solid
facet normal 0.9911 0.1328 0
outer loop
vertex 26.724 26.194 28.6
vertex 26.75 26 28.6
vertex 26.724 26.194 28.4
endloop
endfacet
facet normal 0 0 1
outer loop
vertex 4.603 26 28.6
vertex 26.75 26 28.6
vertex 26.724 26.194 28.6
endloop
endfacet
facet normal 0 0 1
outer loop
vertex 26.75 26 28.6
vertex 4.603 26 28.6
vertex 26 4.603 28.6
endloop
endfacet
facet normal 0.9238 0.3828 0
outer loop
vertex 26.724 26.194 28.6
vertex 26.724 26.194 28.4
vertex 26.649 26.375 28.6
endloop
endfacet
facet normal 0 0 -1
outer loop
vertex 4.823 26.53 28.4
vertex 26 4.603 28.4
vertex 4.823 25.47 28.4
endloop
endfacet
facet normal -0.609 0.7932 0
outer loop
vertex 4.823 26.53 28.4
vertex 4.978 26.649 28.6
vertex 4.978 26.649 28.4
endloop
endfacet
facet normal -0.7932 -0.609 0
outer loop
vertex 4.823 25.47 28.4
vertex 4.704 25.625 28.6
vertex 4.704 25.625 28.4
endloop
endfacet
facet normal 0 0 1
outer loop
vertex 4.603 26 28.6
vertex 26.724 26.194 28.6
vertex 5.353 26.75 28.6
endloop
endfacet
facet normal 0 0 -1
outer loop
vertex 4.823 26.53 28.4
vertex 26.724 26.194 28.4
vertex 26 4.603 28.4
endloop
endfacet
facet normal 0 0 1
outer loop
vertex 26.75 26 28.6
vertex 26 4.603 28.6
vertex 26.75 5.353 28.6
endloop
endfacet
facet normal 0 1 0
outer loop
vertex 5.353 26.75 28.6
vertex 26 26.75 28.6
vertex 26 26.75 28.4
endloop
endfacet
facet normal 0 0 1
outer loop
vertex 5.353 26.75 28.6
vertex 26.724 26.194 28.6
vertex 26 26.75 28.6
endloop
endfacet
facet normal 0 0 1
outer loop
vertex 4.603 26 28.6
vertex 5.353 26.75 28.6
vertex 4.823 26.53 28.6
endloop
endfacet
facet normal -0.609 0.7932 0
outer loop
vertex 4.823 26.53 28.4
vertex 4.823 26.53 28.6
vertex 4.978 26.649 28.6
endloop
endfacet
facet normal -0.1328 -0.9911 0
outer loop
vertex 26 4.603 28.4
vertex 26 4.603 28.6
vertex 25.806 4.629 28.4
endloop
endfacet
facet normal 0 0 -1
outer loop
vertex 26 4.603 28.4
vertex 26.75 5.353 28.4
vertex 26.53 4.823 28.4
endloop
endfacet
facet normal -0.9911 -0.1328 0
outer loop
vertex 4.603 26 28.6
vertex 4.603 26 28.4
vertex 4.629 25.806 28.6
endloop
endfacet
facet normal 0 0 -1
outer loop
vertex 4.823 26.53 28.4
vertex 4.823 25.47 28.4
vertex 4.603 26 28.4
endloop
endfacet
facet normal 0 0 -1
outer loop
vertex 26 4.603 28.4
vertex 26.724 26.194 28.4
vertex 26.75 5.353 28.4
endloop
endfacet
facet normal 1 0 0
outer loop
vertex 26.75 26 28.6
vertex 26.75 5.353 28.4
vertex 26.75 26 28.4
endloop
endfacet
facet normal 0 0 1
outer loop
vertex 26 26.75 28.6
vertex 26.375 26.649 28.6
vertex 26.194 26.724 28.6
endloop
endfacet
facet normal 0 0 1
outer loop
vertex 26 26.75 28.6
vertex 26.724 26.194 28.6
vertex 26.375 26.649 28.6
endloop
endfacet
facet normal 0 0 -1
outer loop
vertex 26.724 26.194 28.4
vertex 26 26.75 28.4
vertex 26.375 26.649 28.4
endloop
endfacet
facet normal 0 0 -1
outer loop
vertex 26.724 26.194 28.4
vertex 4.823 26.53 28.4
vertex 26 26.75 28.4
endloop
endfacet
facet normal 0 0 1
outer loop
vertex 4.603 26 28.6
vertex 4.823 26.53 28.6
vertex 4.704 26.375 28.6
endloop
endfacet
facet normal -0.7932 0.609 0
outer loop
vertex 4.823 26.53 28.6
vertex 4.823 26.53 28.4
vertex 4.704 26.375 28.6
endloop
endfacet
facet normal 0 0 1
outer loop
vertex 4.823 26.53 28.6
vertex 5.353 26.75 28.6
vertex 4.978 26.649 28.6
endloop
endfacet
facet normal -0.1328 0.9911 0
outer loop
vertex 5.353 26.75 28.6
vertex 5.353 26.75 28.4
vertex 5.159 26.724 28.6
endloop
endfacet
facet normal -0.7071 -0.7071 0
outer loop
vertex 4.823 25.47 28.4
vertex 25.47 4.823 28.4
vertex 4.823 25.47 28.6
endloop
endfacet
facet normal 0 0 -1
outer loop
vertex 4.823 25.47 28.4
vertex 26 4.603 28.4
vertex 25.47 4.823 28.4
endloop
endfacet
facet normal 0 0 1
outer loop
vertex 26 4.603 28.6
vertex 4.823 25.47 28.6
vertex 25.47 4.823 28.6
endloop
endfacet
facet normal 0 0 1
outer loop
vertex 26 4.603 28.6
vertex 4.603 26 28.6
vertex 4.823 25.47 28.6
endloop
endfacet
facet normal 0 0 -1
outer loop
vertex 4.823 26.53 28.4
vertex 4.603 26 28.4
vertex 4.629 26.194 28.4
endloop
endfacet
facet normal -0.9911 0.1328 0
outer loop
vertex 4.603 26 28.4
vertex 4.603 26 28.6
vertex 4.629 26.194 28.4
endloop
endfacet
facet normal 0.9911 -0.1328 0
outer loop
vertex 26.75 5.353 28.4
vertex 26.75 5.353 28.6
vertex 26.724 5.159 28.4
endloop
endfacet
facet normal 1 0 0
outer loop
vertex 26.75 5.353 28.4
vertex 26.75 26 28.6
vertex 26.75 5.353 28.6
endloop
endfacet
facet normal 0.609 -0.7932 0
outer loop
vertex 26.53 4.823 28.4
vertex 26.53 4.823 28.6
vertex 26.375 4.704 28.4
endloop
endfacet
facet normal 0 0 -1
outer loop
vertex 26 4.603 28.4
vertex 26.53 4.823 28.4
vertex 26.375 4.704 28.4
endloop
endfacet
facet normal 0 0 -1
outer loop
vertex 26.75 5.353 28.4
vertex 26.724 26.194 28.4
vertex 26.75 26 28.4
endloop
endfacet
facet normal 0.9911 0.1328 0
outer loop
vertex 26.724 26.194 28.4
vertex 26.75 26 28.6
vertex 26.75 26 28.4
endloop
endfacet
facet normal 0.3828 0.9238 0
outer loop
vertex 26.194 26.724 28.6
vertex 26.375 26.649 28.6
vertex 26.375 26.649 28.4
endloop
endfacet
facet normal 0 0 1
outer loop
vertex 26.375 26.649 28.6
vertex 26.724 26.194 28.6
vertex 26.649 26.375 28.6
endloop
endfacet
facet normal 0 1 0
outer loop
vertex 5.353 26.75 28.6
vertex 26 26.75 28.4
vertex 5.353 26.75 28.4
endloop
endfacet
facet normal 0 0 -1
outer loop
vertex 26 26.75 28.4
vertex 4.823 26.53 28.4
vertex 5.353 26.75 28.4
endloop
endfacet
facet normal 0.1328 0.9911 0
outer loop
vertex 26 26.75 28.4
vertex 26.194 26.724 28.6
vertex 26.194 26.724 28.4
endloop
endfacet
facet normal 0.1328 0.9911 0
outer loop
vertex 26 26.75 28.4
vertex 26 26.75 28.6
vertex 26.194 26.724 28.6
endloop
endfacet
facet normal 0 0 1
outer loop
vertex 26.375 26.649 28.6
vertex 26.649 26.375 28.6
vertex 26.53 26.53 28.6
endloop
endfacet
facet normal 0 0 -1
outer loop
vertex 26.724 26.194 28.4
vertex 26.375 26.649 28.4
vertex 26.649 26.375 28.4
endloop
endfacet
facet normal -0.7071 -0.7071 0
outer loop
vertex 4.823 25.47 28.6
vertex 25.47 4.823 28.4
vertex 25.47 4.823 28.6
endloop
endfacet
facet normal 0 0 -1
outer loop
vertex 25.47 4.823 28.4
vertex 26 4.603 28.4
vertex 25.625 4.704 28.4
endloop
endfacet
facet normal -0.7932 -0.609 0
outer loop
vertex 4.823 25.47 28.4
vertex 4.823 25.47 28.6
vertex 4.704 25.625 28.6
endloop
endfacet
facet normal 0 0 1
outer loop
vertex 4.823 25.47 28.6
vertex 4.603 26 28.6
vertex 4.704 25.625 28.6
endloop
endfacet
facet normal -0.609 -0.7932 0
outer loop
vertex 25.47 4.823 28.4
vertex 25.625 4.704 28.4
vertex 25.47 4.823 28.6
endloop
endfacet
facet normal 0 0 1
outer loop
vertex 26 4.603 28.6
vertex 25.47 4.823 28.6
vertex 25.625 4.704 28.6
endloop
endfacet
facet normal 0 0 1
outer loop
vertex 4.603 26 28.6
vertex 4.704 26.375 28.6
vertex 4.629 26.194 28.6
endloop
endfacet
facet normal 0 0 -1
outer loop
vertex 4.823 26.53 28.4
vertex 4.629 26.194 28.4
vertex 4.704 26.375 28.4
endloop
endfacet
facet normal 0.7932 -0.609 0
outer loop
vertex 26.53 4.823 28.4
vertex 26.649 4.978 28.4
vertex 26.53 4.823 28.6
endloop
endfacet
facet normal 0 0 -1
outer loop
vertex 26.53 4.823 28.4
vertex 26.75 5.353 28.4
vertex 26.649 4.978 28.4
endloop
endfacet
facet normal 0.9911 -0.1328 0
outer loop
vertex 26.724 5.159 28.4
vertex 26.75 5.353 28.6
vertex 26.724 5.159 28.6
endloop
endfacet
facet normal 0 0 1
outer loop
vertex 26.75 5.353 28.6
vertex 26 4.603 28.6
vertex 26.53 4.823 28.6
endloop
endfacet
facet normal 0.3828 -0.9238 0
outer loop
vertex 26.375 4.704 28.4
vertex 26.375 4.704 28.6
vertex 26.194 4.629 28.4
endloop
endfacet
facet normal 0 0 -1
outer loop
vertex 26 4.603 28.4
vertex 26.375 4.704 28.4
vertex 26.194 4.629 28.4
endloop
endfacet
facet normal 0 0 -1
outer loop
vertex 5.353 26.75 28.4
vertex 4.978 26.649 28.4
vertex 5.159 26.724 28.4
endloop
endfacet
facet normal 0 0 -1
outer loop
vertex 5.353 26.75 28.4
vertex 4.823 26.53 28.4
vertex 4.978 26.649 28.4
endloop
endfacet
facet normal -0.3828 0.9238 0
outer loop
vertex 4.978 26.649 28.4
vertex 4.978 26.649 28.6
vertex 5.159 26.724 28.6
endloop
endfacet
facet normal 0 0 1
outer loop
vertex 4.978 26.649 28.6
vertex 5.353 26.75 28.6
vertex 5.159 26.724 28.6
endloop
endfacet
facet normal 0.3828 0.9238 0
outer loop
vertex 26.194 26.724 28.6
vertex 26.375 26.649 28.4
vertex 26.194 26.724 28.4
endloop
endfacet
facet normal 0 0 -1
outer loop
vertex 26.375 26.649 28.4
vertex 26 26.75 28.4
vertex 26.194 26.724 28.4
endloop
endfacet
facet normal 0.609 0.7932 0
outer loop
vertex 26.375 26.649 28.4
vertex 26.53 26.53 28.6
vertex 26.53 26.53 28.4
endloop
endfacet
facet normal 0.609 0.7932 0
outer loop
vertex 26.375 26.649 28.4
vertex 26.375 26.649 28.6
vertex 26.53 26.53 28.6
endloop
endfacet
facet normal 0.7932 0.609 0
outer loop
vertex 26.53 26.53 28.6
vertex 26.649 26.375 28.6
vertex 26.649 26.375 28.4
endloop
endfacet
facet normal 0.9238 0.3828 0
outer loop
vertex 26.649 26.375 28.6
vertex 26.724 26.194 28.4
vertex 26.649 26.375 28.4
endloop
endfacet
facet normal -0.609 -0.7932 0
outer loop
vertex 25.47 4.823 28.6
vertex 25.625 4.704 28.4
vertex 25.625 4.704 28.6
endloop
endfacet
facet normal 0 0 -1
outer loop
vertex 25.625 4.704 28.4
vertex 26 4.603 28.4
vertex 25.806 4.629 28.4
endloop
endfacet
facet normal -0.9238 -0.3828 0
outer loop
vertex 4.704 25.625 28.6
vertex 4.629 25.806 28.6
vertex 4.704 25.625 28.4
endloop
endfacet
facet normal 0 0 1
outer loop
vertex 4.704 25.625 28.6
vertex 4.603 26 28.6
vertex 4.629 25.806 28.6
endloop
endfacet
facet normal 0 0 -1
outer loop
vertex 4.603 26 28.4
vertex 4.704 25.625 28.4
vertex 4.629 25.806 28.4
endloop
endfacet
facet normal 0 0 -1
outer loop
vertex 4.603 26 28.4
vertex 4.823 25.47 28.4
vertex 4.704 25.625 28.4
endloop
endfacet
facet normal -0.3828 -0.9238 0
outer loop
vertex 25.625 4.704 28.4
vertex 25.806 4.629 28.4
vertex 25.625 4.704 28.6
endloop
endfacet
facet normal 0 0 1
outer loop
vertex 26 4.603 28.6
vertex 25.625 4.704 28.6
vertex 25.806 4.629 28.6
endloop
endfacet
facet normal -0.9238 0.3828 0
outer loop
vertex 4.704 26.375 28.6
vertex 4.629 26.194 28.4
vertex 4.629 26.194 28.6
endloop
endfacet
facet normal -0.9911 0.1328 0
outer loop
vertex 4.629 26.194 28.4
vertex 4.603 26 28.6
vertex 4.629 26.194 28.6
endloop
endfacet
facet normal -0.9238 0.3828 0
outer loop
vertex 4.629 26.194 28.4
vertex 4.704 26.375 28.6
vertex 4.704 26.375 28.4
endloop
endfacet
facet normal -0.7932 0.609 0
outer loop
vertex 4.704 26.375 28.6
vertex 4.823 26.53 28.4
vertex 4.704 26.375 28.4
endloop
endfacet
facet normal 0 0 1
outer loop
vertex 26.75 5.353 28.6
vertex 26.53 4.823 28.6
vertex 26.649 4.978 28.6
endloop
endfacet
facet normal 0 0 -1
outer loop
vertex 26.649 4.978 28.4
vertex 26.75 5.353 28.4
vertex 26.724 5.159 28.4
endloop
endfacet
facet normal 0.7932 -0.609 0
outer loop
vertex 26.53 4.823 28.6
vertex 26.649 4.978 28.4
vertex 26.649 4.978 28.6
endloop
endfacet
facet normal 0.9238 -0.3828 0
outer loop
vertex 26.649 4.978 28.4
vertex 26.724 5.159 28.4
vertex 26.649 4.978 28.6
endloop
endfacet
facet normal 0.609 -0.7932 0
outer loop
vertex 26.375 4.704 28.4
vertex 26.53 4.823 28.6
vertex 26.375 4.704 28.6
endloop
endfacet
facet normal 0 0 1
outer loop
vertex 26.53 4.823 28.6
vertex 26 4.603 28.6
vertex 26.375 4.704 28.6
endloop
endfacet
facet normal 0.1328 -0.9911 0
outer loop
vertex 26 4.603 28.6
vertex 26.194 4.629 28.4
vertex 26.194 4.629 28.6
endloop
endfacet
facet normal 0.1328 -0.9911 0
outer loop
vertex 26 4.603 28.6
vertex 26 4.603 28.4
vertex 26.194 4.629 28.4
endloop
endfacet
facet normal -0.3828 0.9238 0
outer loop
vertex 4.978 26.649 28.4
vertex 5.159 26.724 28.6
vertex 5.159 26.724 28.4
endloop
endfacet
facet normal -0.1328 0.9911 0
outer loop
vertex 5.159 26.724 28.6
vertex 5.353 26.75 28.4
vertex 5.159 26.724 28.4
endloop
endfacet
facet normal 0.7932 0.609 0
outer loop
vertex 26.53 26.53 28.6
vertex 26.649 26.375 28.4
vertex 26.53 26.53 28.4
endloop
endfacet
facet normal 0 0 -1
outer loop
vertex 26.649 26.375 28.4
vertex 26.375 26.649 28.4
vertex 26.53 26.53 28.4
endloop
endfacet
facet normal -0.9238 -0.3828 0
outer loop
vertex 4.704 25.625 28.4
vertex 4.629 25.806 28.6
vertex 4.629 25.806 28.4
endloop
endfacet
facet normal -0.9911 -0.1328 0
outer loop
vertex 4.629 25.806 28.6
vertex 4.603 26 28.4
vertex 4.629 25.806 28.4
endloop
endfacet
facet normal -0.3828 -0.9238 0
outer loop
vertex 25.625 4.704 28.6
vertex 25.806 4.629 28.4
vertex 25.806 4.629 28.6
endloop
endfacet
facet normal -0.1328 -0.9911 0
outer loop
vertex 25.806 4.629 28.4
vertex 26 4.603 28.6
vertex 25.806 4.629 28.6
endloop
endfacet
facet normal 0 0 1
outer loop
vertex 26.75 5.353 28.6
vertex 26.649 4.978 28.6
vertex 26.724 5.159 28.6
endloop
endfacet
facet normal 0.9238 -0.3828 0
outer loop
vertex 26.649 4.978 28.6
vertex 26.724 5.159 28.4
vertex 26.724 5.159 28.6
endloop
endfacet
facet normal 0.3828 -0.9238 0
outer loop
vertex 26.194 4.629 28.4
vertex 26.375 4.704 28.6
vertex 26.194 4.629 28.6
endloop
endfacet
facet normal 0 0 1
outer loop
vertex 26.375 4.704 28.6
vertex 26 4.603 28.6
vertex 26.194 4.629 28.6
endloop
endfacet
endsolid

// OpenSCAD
// file: def.scad
total_size = 57;

round_radius = 1;
sticker_margin = 2.5;
sticker_round_radius = 0.75;
inf = total_size * 10;

theta = atan(sqrt(2));

cut1_rot = [-theta, 0, -45];
sticker_dif_cut1_dis = total_size / 2 / tan(theta) - round_radius / tan(theta / 2) + round_radius - sticker_margin;
sticker_int_cut1_dis = total_size / 2 / tan(theta) + round_radius * tan(theta / 2) - round_radius + sticker_margin;

module _cube() {
    cube([total_size - round_radius * 2, total_size - round_radius * 2, total_size - round_radius * 2], center = true);
}

module _cut1() {
    translate([-inf, -inf, 0])
        cube([inf * 2, inf * 2, inf]);
}

module _int_cut1() {
    translate([-inf, -inf, round_radius])
        cube([inf * 2, inf * 2, inf]);
}

module _sticker_int_cut1() {
    rotate([-90, 0, 0])
        translate([-inf, -inf, sticker_int_cut1_dis])
            cube([inf * 2, inf * 2, inf]);
}

module _sticker_dif_cut1() {
    rotate([-90, 0, 0])
        translate([-inf, -inf, sticker_dif_cut1_dis])
            cube([inf * 2, inf * 2, inf]);
}

module _sticker_base() {
    translate([0, 0, total_size / 2])
        cube([total_size - sticker_margin * 2, total_size - sticker_margin * 2, 0.1], center = true);
}
// main file
include <def.scad>

module corner_sticker() {
    minkowski() {
        intersection() {
            _sticker_base();
            rotate([0, 0, -45])
                _sticker_int_cut1();
        }
        cylinder(r = sticker_round_radius, h = 0.1, center = true, $fn = 24);
    }
}

corner_sticker();
